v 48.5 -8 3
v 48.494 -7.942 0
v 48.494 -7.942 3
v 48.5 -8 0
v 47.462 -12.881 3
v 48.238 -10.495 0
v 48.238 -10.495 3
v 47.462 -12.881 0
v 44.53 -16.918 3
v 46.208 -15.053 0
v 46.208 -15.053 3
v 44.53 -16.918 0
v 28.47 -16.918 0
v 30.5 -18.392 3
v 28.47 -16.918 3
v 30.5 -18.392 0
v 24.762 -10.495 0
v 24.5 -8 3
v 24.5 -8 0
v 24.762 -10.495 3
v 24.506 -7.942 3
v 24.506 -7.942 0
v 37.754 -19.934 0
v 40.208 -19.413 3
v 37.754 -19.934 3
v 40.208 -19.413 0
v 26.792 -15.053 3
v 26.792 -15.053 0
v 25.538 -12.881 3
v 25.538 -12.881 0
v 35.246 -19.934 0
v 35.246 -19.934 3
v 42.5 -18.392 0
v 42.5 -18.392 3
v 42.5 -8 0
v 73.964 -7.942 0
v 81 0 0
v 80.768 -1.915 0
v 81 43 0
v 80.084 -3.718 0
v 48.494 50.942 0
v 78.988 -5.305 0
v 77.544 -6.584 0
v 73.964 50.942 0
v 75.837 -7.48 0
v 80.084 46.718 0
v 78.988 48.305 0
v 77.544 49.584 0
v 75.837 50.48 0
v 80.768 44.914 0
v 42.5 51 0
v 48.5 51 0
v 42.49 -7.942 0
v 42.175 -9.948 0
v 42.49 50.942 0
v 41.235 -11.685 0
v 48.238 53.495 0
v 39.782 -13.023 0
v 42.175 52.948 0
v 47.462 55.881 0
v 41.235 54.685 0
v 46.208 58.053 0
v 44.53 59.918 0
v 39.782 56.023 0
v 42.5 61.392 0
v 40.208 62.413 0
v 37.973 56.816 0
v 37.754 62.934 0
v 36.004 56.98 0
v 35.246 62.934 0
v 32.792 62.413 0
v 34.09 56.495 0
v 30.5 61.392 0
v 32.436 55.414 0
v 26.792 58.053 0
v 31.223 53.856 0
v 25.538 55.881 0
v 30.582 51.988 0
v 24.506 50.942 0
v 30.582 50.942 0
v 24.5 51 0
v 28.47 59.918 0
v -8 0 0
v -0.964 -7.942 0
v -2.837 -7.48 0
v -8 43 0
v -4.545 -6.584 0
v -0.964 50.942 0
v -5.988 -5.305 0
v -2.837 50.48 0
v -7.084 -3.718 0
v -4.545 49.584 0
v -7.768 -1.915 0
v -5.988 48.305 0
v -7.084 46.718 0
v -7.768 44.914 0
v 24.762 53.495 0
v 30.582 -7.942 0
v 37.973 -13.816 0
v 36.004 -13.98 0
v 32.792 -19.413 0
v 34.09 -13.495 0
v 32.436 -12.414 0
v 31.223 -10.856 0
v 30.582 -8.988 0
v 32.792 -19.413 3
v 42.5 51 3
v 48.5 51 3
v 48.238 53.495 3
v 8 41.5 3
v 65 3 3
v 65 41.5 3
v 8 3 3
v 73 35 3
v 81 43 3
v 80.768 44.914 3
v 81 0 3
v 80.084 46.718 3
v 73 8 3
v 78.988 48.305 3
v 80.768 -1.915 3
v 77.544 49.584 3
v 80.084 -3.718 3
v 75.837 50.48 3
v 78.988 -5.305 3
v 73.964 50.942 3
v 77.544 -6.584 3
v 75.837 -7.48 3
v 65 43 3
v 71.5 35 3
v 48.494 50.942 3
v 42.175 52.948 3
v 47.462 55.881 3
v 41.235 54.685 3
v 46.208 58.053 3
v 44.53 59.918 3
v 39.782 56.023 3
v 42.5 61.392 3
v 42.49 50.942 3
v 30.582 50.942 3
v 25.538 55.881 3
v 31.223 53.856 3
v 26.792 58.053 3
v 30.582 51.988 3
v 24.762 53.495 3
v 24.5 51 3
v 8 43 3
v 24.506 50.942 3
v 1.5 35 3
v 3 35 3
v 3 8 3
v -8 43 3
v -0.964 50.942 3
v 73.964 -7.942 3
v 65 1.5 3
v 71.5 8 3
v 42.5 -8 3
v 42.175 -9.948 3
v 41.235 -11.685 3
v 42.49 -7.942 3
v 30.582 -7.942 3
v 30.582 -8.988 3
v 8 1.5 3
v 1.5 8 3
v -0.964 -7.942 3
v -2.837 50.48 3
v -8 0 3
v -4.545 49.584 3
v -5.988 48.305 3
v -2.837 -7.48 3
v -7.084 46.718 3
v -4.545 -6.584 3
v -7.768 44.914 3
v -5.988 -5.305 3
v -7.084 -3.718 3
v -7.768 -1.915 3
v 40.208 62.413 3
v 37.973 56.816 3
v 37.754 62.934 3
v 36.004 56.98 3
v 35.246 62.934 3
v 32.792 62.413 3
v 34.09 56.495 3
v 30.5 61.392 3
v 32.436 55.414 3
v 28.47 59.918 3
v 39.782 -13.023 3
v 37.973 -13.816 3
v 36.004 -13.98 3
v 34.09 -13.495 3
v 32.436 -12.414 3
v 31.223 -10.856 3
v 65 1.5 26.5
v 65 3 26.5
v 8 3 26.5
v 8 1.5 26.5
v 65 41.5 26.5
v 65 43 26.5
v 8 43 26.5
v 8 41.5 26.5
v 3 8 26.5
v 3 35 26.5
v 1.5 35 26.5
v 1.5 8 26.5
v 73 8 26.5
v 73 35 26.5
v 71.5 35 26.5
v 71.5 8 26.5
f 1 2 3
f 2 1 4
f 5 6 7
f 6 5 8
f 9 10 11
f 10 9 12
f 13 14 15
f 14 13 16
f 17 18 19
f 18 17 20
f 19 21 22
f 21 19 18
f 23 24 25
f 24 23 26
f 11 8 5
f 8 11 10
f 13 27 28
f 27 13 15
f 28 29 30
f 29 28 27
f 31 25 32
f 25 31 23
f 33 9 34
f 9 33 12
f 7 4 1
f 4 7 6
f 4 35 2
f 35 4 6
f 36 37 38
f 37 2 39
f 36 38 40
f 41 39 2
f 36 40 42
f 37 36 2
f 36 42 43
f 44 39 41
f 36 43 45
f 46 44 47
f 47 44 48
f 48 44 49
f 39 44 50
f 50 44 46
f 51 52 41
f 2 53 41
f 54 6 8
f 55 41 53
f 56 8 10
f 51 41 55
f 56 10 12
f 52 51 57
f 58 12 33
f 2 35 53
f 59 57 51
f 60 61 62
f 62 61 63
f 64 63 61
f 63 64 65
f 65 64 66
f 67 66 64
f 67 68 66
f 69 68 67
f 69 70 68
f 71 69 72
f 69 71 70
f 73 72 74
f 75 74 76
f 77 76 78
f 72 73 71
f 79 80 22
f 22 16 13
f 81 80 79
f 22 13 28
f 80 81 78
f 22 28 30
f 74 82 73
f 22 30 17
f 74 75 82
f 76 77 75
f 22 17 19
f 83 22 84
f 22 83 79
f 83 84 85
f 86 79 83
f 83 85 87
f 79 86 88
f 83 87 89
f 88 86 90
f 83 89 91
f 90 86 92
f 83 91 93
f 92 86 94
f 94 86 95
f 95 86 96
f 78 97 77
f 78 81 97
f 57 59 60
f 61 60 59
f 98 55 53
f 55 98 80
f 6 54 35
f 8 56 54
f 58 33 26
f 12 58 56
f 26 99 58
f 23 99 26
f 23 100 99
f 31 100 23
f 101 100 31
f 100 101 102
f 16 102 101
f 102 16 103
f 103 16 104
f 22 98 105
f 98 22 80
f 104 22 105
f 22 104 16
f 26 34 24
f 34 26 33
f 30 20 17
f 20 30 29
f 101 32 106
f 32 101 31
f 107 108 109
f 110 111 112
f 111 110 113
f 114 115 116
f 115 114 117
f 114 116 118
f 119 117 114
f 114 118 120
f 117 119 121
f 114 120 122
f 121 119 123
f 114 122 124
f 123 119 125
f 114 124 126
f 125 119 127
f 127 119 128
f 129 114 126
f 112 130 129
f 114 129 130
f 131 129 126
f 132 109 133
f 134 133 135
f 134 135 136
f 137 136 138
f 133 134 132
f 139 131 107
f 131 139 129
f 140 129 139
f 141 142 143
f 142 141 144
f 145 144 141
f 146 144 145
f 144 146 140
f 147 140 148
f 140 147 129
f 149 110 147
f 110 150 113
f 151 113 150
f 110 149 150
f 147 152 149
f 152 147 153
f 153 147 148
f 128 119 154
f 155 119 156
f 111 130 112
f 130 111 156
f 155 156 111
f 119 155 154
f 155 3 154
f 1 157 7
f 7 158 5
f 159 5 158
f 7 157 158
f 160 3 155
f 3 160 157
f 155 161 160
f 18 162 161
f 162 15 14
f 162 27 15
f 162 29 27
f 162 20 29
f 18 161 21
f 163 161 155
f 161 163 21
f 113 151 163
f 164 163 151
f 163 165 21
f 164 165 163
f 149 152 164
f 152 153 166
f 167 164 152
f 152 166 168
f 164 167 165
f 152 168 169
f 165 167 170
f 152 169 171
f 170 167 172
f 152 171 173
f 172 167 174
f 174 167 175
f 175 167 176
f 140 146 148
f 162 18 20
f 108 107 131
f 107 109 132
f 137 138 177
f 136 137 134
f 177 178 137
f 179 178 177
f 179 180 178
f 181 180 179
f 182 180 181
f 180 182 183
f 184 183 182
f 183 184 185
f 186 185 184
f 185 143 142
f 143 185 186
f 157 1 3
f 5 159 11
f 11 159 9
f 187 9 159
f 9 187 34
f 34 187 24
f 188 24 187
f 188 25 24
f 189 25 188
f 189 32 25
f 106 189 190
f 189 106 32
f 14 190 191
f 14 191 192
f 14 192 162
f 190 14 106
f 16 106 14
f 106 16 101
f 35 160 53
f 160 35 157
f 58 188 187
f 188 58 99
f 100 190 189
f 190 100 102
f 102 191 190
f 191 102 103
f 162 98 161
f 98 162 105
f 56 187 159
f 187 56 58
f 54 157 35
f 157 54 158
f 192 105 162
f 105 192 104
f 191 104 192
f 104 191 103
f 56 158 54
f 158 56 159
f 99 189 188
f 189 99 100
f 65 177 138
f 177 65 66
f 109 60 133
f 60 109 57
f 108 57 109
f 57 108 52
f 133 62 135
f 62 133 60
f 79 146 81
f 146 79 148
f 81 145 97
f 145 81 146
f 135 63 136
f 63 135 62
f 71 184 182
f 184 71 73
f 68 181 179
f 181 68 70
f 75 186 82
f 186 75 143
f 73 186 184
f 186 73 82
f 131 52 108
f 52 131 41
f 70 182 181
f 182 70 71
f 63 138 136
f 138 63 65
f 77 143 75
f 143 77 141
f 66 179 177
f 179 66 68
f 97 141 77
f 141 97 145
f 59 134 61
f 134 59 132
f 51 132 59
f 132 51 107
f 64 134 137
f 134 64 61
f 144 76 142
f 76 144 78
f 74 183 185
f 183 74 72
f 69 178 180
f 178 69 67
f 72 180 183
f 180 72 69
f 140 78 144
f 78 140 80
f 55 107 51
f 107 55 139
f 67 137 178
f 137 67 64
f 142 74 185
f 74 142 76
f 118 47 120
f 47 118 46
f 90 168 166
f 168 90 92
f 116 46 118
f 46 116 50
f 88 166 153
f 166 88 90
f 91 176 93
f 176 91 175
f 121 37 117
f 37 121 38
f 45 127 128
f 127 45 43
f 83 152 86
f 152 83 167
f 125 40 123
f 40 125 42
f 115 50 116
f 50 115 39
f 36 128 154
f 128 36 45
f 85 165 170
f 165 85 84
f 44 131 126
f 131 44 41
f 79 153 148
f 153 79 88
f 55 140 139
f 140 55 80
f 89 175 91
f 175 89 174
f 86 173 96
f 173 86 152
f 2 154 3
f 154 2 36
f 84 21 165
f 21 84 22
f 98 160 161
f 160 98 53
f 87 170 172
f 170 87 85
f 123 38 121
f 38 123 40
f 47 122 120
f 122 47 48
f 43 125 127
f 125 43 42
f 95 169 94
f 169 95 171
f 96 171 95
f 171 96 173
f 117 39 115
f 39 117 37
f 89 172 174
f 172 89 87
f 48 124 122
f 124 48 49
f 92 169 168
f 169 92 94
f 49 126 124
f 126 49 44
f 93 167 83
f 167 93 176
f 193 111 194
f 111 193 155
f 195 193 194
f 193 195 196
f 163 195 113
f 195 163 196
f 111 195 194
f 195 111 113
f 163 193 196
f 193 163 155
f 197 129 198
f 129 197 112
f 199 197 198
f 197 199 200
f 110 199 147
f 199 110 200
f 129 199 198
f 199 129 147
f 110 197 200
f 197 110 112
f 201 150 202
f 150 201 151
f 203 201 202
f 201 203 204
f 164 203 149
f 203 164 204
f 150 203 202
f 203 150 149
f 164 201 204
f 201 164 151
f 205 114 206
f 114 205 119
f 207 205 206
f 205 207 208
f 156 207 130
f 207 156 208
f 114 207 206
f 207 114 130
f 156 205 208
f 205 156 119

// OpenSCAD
lenght =  73;
width =   43;
wall =    1.5;
depth  =  25;
overlap = 16;

module base() {
    minkowski() {
        cube( [lenght, width, wall]);
        cylinder( r = overlap/2, h = wall );
    }
}

module longwall() {
    cube( [ lenght-overlap, wall, depth ] );
}

module shortwall() {
    cube( [ wall, width-overlap, depth ] );
}

module hold() {
    difference() {
        cylinder( r = 8*wall, h = 2*wall );
        translate([ 0, 0, -wall ]) cylinder( r = 4*wall, h = 6*wall );
    }
}


/*****************/
base();

translate( [ overlap/2, wall, wall ]) longwall();
translate( [ overlap/2, width-wall, wall]) longwall();

translate( [ wall, overlap/2, wall ]) shortwall();
translate( [ lenght-wall, overlap/2, wall ]) shortwall();

translate( [ lenght/2, -overlap/2, 0]) hold();
translate( [ lenght/2, width+overlap/2, 0]) hold();
